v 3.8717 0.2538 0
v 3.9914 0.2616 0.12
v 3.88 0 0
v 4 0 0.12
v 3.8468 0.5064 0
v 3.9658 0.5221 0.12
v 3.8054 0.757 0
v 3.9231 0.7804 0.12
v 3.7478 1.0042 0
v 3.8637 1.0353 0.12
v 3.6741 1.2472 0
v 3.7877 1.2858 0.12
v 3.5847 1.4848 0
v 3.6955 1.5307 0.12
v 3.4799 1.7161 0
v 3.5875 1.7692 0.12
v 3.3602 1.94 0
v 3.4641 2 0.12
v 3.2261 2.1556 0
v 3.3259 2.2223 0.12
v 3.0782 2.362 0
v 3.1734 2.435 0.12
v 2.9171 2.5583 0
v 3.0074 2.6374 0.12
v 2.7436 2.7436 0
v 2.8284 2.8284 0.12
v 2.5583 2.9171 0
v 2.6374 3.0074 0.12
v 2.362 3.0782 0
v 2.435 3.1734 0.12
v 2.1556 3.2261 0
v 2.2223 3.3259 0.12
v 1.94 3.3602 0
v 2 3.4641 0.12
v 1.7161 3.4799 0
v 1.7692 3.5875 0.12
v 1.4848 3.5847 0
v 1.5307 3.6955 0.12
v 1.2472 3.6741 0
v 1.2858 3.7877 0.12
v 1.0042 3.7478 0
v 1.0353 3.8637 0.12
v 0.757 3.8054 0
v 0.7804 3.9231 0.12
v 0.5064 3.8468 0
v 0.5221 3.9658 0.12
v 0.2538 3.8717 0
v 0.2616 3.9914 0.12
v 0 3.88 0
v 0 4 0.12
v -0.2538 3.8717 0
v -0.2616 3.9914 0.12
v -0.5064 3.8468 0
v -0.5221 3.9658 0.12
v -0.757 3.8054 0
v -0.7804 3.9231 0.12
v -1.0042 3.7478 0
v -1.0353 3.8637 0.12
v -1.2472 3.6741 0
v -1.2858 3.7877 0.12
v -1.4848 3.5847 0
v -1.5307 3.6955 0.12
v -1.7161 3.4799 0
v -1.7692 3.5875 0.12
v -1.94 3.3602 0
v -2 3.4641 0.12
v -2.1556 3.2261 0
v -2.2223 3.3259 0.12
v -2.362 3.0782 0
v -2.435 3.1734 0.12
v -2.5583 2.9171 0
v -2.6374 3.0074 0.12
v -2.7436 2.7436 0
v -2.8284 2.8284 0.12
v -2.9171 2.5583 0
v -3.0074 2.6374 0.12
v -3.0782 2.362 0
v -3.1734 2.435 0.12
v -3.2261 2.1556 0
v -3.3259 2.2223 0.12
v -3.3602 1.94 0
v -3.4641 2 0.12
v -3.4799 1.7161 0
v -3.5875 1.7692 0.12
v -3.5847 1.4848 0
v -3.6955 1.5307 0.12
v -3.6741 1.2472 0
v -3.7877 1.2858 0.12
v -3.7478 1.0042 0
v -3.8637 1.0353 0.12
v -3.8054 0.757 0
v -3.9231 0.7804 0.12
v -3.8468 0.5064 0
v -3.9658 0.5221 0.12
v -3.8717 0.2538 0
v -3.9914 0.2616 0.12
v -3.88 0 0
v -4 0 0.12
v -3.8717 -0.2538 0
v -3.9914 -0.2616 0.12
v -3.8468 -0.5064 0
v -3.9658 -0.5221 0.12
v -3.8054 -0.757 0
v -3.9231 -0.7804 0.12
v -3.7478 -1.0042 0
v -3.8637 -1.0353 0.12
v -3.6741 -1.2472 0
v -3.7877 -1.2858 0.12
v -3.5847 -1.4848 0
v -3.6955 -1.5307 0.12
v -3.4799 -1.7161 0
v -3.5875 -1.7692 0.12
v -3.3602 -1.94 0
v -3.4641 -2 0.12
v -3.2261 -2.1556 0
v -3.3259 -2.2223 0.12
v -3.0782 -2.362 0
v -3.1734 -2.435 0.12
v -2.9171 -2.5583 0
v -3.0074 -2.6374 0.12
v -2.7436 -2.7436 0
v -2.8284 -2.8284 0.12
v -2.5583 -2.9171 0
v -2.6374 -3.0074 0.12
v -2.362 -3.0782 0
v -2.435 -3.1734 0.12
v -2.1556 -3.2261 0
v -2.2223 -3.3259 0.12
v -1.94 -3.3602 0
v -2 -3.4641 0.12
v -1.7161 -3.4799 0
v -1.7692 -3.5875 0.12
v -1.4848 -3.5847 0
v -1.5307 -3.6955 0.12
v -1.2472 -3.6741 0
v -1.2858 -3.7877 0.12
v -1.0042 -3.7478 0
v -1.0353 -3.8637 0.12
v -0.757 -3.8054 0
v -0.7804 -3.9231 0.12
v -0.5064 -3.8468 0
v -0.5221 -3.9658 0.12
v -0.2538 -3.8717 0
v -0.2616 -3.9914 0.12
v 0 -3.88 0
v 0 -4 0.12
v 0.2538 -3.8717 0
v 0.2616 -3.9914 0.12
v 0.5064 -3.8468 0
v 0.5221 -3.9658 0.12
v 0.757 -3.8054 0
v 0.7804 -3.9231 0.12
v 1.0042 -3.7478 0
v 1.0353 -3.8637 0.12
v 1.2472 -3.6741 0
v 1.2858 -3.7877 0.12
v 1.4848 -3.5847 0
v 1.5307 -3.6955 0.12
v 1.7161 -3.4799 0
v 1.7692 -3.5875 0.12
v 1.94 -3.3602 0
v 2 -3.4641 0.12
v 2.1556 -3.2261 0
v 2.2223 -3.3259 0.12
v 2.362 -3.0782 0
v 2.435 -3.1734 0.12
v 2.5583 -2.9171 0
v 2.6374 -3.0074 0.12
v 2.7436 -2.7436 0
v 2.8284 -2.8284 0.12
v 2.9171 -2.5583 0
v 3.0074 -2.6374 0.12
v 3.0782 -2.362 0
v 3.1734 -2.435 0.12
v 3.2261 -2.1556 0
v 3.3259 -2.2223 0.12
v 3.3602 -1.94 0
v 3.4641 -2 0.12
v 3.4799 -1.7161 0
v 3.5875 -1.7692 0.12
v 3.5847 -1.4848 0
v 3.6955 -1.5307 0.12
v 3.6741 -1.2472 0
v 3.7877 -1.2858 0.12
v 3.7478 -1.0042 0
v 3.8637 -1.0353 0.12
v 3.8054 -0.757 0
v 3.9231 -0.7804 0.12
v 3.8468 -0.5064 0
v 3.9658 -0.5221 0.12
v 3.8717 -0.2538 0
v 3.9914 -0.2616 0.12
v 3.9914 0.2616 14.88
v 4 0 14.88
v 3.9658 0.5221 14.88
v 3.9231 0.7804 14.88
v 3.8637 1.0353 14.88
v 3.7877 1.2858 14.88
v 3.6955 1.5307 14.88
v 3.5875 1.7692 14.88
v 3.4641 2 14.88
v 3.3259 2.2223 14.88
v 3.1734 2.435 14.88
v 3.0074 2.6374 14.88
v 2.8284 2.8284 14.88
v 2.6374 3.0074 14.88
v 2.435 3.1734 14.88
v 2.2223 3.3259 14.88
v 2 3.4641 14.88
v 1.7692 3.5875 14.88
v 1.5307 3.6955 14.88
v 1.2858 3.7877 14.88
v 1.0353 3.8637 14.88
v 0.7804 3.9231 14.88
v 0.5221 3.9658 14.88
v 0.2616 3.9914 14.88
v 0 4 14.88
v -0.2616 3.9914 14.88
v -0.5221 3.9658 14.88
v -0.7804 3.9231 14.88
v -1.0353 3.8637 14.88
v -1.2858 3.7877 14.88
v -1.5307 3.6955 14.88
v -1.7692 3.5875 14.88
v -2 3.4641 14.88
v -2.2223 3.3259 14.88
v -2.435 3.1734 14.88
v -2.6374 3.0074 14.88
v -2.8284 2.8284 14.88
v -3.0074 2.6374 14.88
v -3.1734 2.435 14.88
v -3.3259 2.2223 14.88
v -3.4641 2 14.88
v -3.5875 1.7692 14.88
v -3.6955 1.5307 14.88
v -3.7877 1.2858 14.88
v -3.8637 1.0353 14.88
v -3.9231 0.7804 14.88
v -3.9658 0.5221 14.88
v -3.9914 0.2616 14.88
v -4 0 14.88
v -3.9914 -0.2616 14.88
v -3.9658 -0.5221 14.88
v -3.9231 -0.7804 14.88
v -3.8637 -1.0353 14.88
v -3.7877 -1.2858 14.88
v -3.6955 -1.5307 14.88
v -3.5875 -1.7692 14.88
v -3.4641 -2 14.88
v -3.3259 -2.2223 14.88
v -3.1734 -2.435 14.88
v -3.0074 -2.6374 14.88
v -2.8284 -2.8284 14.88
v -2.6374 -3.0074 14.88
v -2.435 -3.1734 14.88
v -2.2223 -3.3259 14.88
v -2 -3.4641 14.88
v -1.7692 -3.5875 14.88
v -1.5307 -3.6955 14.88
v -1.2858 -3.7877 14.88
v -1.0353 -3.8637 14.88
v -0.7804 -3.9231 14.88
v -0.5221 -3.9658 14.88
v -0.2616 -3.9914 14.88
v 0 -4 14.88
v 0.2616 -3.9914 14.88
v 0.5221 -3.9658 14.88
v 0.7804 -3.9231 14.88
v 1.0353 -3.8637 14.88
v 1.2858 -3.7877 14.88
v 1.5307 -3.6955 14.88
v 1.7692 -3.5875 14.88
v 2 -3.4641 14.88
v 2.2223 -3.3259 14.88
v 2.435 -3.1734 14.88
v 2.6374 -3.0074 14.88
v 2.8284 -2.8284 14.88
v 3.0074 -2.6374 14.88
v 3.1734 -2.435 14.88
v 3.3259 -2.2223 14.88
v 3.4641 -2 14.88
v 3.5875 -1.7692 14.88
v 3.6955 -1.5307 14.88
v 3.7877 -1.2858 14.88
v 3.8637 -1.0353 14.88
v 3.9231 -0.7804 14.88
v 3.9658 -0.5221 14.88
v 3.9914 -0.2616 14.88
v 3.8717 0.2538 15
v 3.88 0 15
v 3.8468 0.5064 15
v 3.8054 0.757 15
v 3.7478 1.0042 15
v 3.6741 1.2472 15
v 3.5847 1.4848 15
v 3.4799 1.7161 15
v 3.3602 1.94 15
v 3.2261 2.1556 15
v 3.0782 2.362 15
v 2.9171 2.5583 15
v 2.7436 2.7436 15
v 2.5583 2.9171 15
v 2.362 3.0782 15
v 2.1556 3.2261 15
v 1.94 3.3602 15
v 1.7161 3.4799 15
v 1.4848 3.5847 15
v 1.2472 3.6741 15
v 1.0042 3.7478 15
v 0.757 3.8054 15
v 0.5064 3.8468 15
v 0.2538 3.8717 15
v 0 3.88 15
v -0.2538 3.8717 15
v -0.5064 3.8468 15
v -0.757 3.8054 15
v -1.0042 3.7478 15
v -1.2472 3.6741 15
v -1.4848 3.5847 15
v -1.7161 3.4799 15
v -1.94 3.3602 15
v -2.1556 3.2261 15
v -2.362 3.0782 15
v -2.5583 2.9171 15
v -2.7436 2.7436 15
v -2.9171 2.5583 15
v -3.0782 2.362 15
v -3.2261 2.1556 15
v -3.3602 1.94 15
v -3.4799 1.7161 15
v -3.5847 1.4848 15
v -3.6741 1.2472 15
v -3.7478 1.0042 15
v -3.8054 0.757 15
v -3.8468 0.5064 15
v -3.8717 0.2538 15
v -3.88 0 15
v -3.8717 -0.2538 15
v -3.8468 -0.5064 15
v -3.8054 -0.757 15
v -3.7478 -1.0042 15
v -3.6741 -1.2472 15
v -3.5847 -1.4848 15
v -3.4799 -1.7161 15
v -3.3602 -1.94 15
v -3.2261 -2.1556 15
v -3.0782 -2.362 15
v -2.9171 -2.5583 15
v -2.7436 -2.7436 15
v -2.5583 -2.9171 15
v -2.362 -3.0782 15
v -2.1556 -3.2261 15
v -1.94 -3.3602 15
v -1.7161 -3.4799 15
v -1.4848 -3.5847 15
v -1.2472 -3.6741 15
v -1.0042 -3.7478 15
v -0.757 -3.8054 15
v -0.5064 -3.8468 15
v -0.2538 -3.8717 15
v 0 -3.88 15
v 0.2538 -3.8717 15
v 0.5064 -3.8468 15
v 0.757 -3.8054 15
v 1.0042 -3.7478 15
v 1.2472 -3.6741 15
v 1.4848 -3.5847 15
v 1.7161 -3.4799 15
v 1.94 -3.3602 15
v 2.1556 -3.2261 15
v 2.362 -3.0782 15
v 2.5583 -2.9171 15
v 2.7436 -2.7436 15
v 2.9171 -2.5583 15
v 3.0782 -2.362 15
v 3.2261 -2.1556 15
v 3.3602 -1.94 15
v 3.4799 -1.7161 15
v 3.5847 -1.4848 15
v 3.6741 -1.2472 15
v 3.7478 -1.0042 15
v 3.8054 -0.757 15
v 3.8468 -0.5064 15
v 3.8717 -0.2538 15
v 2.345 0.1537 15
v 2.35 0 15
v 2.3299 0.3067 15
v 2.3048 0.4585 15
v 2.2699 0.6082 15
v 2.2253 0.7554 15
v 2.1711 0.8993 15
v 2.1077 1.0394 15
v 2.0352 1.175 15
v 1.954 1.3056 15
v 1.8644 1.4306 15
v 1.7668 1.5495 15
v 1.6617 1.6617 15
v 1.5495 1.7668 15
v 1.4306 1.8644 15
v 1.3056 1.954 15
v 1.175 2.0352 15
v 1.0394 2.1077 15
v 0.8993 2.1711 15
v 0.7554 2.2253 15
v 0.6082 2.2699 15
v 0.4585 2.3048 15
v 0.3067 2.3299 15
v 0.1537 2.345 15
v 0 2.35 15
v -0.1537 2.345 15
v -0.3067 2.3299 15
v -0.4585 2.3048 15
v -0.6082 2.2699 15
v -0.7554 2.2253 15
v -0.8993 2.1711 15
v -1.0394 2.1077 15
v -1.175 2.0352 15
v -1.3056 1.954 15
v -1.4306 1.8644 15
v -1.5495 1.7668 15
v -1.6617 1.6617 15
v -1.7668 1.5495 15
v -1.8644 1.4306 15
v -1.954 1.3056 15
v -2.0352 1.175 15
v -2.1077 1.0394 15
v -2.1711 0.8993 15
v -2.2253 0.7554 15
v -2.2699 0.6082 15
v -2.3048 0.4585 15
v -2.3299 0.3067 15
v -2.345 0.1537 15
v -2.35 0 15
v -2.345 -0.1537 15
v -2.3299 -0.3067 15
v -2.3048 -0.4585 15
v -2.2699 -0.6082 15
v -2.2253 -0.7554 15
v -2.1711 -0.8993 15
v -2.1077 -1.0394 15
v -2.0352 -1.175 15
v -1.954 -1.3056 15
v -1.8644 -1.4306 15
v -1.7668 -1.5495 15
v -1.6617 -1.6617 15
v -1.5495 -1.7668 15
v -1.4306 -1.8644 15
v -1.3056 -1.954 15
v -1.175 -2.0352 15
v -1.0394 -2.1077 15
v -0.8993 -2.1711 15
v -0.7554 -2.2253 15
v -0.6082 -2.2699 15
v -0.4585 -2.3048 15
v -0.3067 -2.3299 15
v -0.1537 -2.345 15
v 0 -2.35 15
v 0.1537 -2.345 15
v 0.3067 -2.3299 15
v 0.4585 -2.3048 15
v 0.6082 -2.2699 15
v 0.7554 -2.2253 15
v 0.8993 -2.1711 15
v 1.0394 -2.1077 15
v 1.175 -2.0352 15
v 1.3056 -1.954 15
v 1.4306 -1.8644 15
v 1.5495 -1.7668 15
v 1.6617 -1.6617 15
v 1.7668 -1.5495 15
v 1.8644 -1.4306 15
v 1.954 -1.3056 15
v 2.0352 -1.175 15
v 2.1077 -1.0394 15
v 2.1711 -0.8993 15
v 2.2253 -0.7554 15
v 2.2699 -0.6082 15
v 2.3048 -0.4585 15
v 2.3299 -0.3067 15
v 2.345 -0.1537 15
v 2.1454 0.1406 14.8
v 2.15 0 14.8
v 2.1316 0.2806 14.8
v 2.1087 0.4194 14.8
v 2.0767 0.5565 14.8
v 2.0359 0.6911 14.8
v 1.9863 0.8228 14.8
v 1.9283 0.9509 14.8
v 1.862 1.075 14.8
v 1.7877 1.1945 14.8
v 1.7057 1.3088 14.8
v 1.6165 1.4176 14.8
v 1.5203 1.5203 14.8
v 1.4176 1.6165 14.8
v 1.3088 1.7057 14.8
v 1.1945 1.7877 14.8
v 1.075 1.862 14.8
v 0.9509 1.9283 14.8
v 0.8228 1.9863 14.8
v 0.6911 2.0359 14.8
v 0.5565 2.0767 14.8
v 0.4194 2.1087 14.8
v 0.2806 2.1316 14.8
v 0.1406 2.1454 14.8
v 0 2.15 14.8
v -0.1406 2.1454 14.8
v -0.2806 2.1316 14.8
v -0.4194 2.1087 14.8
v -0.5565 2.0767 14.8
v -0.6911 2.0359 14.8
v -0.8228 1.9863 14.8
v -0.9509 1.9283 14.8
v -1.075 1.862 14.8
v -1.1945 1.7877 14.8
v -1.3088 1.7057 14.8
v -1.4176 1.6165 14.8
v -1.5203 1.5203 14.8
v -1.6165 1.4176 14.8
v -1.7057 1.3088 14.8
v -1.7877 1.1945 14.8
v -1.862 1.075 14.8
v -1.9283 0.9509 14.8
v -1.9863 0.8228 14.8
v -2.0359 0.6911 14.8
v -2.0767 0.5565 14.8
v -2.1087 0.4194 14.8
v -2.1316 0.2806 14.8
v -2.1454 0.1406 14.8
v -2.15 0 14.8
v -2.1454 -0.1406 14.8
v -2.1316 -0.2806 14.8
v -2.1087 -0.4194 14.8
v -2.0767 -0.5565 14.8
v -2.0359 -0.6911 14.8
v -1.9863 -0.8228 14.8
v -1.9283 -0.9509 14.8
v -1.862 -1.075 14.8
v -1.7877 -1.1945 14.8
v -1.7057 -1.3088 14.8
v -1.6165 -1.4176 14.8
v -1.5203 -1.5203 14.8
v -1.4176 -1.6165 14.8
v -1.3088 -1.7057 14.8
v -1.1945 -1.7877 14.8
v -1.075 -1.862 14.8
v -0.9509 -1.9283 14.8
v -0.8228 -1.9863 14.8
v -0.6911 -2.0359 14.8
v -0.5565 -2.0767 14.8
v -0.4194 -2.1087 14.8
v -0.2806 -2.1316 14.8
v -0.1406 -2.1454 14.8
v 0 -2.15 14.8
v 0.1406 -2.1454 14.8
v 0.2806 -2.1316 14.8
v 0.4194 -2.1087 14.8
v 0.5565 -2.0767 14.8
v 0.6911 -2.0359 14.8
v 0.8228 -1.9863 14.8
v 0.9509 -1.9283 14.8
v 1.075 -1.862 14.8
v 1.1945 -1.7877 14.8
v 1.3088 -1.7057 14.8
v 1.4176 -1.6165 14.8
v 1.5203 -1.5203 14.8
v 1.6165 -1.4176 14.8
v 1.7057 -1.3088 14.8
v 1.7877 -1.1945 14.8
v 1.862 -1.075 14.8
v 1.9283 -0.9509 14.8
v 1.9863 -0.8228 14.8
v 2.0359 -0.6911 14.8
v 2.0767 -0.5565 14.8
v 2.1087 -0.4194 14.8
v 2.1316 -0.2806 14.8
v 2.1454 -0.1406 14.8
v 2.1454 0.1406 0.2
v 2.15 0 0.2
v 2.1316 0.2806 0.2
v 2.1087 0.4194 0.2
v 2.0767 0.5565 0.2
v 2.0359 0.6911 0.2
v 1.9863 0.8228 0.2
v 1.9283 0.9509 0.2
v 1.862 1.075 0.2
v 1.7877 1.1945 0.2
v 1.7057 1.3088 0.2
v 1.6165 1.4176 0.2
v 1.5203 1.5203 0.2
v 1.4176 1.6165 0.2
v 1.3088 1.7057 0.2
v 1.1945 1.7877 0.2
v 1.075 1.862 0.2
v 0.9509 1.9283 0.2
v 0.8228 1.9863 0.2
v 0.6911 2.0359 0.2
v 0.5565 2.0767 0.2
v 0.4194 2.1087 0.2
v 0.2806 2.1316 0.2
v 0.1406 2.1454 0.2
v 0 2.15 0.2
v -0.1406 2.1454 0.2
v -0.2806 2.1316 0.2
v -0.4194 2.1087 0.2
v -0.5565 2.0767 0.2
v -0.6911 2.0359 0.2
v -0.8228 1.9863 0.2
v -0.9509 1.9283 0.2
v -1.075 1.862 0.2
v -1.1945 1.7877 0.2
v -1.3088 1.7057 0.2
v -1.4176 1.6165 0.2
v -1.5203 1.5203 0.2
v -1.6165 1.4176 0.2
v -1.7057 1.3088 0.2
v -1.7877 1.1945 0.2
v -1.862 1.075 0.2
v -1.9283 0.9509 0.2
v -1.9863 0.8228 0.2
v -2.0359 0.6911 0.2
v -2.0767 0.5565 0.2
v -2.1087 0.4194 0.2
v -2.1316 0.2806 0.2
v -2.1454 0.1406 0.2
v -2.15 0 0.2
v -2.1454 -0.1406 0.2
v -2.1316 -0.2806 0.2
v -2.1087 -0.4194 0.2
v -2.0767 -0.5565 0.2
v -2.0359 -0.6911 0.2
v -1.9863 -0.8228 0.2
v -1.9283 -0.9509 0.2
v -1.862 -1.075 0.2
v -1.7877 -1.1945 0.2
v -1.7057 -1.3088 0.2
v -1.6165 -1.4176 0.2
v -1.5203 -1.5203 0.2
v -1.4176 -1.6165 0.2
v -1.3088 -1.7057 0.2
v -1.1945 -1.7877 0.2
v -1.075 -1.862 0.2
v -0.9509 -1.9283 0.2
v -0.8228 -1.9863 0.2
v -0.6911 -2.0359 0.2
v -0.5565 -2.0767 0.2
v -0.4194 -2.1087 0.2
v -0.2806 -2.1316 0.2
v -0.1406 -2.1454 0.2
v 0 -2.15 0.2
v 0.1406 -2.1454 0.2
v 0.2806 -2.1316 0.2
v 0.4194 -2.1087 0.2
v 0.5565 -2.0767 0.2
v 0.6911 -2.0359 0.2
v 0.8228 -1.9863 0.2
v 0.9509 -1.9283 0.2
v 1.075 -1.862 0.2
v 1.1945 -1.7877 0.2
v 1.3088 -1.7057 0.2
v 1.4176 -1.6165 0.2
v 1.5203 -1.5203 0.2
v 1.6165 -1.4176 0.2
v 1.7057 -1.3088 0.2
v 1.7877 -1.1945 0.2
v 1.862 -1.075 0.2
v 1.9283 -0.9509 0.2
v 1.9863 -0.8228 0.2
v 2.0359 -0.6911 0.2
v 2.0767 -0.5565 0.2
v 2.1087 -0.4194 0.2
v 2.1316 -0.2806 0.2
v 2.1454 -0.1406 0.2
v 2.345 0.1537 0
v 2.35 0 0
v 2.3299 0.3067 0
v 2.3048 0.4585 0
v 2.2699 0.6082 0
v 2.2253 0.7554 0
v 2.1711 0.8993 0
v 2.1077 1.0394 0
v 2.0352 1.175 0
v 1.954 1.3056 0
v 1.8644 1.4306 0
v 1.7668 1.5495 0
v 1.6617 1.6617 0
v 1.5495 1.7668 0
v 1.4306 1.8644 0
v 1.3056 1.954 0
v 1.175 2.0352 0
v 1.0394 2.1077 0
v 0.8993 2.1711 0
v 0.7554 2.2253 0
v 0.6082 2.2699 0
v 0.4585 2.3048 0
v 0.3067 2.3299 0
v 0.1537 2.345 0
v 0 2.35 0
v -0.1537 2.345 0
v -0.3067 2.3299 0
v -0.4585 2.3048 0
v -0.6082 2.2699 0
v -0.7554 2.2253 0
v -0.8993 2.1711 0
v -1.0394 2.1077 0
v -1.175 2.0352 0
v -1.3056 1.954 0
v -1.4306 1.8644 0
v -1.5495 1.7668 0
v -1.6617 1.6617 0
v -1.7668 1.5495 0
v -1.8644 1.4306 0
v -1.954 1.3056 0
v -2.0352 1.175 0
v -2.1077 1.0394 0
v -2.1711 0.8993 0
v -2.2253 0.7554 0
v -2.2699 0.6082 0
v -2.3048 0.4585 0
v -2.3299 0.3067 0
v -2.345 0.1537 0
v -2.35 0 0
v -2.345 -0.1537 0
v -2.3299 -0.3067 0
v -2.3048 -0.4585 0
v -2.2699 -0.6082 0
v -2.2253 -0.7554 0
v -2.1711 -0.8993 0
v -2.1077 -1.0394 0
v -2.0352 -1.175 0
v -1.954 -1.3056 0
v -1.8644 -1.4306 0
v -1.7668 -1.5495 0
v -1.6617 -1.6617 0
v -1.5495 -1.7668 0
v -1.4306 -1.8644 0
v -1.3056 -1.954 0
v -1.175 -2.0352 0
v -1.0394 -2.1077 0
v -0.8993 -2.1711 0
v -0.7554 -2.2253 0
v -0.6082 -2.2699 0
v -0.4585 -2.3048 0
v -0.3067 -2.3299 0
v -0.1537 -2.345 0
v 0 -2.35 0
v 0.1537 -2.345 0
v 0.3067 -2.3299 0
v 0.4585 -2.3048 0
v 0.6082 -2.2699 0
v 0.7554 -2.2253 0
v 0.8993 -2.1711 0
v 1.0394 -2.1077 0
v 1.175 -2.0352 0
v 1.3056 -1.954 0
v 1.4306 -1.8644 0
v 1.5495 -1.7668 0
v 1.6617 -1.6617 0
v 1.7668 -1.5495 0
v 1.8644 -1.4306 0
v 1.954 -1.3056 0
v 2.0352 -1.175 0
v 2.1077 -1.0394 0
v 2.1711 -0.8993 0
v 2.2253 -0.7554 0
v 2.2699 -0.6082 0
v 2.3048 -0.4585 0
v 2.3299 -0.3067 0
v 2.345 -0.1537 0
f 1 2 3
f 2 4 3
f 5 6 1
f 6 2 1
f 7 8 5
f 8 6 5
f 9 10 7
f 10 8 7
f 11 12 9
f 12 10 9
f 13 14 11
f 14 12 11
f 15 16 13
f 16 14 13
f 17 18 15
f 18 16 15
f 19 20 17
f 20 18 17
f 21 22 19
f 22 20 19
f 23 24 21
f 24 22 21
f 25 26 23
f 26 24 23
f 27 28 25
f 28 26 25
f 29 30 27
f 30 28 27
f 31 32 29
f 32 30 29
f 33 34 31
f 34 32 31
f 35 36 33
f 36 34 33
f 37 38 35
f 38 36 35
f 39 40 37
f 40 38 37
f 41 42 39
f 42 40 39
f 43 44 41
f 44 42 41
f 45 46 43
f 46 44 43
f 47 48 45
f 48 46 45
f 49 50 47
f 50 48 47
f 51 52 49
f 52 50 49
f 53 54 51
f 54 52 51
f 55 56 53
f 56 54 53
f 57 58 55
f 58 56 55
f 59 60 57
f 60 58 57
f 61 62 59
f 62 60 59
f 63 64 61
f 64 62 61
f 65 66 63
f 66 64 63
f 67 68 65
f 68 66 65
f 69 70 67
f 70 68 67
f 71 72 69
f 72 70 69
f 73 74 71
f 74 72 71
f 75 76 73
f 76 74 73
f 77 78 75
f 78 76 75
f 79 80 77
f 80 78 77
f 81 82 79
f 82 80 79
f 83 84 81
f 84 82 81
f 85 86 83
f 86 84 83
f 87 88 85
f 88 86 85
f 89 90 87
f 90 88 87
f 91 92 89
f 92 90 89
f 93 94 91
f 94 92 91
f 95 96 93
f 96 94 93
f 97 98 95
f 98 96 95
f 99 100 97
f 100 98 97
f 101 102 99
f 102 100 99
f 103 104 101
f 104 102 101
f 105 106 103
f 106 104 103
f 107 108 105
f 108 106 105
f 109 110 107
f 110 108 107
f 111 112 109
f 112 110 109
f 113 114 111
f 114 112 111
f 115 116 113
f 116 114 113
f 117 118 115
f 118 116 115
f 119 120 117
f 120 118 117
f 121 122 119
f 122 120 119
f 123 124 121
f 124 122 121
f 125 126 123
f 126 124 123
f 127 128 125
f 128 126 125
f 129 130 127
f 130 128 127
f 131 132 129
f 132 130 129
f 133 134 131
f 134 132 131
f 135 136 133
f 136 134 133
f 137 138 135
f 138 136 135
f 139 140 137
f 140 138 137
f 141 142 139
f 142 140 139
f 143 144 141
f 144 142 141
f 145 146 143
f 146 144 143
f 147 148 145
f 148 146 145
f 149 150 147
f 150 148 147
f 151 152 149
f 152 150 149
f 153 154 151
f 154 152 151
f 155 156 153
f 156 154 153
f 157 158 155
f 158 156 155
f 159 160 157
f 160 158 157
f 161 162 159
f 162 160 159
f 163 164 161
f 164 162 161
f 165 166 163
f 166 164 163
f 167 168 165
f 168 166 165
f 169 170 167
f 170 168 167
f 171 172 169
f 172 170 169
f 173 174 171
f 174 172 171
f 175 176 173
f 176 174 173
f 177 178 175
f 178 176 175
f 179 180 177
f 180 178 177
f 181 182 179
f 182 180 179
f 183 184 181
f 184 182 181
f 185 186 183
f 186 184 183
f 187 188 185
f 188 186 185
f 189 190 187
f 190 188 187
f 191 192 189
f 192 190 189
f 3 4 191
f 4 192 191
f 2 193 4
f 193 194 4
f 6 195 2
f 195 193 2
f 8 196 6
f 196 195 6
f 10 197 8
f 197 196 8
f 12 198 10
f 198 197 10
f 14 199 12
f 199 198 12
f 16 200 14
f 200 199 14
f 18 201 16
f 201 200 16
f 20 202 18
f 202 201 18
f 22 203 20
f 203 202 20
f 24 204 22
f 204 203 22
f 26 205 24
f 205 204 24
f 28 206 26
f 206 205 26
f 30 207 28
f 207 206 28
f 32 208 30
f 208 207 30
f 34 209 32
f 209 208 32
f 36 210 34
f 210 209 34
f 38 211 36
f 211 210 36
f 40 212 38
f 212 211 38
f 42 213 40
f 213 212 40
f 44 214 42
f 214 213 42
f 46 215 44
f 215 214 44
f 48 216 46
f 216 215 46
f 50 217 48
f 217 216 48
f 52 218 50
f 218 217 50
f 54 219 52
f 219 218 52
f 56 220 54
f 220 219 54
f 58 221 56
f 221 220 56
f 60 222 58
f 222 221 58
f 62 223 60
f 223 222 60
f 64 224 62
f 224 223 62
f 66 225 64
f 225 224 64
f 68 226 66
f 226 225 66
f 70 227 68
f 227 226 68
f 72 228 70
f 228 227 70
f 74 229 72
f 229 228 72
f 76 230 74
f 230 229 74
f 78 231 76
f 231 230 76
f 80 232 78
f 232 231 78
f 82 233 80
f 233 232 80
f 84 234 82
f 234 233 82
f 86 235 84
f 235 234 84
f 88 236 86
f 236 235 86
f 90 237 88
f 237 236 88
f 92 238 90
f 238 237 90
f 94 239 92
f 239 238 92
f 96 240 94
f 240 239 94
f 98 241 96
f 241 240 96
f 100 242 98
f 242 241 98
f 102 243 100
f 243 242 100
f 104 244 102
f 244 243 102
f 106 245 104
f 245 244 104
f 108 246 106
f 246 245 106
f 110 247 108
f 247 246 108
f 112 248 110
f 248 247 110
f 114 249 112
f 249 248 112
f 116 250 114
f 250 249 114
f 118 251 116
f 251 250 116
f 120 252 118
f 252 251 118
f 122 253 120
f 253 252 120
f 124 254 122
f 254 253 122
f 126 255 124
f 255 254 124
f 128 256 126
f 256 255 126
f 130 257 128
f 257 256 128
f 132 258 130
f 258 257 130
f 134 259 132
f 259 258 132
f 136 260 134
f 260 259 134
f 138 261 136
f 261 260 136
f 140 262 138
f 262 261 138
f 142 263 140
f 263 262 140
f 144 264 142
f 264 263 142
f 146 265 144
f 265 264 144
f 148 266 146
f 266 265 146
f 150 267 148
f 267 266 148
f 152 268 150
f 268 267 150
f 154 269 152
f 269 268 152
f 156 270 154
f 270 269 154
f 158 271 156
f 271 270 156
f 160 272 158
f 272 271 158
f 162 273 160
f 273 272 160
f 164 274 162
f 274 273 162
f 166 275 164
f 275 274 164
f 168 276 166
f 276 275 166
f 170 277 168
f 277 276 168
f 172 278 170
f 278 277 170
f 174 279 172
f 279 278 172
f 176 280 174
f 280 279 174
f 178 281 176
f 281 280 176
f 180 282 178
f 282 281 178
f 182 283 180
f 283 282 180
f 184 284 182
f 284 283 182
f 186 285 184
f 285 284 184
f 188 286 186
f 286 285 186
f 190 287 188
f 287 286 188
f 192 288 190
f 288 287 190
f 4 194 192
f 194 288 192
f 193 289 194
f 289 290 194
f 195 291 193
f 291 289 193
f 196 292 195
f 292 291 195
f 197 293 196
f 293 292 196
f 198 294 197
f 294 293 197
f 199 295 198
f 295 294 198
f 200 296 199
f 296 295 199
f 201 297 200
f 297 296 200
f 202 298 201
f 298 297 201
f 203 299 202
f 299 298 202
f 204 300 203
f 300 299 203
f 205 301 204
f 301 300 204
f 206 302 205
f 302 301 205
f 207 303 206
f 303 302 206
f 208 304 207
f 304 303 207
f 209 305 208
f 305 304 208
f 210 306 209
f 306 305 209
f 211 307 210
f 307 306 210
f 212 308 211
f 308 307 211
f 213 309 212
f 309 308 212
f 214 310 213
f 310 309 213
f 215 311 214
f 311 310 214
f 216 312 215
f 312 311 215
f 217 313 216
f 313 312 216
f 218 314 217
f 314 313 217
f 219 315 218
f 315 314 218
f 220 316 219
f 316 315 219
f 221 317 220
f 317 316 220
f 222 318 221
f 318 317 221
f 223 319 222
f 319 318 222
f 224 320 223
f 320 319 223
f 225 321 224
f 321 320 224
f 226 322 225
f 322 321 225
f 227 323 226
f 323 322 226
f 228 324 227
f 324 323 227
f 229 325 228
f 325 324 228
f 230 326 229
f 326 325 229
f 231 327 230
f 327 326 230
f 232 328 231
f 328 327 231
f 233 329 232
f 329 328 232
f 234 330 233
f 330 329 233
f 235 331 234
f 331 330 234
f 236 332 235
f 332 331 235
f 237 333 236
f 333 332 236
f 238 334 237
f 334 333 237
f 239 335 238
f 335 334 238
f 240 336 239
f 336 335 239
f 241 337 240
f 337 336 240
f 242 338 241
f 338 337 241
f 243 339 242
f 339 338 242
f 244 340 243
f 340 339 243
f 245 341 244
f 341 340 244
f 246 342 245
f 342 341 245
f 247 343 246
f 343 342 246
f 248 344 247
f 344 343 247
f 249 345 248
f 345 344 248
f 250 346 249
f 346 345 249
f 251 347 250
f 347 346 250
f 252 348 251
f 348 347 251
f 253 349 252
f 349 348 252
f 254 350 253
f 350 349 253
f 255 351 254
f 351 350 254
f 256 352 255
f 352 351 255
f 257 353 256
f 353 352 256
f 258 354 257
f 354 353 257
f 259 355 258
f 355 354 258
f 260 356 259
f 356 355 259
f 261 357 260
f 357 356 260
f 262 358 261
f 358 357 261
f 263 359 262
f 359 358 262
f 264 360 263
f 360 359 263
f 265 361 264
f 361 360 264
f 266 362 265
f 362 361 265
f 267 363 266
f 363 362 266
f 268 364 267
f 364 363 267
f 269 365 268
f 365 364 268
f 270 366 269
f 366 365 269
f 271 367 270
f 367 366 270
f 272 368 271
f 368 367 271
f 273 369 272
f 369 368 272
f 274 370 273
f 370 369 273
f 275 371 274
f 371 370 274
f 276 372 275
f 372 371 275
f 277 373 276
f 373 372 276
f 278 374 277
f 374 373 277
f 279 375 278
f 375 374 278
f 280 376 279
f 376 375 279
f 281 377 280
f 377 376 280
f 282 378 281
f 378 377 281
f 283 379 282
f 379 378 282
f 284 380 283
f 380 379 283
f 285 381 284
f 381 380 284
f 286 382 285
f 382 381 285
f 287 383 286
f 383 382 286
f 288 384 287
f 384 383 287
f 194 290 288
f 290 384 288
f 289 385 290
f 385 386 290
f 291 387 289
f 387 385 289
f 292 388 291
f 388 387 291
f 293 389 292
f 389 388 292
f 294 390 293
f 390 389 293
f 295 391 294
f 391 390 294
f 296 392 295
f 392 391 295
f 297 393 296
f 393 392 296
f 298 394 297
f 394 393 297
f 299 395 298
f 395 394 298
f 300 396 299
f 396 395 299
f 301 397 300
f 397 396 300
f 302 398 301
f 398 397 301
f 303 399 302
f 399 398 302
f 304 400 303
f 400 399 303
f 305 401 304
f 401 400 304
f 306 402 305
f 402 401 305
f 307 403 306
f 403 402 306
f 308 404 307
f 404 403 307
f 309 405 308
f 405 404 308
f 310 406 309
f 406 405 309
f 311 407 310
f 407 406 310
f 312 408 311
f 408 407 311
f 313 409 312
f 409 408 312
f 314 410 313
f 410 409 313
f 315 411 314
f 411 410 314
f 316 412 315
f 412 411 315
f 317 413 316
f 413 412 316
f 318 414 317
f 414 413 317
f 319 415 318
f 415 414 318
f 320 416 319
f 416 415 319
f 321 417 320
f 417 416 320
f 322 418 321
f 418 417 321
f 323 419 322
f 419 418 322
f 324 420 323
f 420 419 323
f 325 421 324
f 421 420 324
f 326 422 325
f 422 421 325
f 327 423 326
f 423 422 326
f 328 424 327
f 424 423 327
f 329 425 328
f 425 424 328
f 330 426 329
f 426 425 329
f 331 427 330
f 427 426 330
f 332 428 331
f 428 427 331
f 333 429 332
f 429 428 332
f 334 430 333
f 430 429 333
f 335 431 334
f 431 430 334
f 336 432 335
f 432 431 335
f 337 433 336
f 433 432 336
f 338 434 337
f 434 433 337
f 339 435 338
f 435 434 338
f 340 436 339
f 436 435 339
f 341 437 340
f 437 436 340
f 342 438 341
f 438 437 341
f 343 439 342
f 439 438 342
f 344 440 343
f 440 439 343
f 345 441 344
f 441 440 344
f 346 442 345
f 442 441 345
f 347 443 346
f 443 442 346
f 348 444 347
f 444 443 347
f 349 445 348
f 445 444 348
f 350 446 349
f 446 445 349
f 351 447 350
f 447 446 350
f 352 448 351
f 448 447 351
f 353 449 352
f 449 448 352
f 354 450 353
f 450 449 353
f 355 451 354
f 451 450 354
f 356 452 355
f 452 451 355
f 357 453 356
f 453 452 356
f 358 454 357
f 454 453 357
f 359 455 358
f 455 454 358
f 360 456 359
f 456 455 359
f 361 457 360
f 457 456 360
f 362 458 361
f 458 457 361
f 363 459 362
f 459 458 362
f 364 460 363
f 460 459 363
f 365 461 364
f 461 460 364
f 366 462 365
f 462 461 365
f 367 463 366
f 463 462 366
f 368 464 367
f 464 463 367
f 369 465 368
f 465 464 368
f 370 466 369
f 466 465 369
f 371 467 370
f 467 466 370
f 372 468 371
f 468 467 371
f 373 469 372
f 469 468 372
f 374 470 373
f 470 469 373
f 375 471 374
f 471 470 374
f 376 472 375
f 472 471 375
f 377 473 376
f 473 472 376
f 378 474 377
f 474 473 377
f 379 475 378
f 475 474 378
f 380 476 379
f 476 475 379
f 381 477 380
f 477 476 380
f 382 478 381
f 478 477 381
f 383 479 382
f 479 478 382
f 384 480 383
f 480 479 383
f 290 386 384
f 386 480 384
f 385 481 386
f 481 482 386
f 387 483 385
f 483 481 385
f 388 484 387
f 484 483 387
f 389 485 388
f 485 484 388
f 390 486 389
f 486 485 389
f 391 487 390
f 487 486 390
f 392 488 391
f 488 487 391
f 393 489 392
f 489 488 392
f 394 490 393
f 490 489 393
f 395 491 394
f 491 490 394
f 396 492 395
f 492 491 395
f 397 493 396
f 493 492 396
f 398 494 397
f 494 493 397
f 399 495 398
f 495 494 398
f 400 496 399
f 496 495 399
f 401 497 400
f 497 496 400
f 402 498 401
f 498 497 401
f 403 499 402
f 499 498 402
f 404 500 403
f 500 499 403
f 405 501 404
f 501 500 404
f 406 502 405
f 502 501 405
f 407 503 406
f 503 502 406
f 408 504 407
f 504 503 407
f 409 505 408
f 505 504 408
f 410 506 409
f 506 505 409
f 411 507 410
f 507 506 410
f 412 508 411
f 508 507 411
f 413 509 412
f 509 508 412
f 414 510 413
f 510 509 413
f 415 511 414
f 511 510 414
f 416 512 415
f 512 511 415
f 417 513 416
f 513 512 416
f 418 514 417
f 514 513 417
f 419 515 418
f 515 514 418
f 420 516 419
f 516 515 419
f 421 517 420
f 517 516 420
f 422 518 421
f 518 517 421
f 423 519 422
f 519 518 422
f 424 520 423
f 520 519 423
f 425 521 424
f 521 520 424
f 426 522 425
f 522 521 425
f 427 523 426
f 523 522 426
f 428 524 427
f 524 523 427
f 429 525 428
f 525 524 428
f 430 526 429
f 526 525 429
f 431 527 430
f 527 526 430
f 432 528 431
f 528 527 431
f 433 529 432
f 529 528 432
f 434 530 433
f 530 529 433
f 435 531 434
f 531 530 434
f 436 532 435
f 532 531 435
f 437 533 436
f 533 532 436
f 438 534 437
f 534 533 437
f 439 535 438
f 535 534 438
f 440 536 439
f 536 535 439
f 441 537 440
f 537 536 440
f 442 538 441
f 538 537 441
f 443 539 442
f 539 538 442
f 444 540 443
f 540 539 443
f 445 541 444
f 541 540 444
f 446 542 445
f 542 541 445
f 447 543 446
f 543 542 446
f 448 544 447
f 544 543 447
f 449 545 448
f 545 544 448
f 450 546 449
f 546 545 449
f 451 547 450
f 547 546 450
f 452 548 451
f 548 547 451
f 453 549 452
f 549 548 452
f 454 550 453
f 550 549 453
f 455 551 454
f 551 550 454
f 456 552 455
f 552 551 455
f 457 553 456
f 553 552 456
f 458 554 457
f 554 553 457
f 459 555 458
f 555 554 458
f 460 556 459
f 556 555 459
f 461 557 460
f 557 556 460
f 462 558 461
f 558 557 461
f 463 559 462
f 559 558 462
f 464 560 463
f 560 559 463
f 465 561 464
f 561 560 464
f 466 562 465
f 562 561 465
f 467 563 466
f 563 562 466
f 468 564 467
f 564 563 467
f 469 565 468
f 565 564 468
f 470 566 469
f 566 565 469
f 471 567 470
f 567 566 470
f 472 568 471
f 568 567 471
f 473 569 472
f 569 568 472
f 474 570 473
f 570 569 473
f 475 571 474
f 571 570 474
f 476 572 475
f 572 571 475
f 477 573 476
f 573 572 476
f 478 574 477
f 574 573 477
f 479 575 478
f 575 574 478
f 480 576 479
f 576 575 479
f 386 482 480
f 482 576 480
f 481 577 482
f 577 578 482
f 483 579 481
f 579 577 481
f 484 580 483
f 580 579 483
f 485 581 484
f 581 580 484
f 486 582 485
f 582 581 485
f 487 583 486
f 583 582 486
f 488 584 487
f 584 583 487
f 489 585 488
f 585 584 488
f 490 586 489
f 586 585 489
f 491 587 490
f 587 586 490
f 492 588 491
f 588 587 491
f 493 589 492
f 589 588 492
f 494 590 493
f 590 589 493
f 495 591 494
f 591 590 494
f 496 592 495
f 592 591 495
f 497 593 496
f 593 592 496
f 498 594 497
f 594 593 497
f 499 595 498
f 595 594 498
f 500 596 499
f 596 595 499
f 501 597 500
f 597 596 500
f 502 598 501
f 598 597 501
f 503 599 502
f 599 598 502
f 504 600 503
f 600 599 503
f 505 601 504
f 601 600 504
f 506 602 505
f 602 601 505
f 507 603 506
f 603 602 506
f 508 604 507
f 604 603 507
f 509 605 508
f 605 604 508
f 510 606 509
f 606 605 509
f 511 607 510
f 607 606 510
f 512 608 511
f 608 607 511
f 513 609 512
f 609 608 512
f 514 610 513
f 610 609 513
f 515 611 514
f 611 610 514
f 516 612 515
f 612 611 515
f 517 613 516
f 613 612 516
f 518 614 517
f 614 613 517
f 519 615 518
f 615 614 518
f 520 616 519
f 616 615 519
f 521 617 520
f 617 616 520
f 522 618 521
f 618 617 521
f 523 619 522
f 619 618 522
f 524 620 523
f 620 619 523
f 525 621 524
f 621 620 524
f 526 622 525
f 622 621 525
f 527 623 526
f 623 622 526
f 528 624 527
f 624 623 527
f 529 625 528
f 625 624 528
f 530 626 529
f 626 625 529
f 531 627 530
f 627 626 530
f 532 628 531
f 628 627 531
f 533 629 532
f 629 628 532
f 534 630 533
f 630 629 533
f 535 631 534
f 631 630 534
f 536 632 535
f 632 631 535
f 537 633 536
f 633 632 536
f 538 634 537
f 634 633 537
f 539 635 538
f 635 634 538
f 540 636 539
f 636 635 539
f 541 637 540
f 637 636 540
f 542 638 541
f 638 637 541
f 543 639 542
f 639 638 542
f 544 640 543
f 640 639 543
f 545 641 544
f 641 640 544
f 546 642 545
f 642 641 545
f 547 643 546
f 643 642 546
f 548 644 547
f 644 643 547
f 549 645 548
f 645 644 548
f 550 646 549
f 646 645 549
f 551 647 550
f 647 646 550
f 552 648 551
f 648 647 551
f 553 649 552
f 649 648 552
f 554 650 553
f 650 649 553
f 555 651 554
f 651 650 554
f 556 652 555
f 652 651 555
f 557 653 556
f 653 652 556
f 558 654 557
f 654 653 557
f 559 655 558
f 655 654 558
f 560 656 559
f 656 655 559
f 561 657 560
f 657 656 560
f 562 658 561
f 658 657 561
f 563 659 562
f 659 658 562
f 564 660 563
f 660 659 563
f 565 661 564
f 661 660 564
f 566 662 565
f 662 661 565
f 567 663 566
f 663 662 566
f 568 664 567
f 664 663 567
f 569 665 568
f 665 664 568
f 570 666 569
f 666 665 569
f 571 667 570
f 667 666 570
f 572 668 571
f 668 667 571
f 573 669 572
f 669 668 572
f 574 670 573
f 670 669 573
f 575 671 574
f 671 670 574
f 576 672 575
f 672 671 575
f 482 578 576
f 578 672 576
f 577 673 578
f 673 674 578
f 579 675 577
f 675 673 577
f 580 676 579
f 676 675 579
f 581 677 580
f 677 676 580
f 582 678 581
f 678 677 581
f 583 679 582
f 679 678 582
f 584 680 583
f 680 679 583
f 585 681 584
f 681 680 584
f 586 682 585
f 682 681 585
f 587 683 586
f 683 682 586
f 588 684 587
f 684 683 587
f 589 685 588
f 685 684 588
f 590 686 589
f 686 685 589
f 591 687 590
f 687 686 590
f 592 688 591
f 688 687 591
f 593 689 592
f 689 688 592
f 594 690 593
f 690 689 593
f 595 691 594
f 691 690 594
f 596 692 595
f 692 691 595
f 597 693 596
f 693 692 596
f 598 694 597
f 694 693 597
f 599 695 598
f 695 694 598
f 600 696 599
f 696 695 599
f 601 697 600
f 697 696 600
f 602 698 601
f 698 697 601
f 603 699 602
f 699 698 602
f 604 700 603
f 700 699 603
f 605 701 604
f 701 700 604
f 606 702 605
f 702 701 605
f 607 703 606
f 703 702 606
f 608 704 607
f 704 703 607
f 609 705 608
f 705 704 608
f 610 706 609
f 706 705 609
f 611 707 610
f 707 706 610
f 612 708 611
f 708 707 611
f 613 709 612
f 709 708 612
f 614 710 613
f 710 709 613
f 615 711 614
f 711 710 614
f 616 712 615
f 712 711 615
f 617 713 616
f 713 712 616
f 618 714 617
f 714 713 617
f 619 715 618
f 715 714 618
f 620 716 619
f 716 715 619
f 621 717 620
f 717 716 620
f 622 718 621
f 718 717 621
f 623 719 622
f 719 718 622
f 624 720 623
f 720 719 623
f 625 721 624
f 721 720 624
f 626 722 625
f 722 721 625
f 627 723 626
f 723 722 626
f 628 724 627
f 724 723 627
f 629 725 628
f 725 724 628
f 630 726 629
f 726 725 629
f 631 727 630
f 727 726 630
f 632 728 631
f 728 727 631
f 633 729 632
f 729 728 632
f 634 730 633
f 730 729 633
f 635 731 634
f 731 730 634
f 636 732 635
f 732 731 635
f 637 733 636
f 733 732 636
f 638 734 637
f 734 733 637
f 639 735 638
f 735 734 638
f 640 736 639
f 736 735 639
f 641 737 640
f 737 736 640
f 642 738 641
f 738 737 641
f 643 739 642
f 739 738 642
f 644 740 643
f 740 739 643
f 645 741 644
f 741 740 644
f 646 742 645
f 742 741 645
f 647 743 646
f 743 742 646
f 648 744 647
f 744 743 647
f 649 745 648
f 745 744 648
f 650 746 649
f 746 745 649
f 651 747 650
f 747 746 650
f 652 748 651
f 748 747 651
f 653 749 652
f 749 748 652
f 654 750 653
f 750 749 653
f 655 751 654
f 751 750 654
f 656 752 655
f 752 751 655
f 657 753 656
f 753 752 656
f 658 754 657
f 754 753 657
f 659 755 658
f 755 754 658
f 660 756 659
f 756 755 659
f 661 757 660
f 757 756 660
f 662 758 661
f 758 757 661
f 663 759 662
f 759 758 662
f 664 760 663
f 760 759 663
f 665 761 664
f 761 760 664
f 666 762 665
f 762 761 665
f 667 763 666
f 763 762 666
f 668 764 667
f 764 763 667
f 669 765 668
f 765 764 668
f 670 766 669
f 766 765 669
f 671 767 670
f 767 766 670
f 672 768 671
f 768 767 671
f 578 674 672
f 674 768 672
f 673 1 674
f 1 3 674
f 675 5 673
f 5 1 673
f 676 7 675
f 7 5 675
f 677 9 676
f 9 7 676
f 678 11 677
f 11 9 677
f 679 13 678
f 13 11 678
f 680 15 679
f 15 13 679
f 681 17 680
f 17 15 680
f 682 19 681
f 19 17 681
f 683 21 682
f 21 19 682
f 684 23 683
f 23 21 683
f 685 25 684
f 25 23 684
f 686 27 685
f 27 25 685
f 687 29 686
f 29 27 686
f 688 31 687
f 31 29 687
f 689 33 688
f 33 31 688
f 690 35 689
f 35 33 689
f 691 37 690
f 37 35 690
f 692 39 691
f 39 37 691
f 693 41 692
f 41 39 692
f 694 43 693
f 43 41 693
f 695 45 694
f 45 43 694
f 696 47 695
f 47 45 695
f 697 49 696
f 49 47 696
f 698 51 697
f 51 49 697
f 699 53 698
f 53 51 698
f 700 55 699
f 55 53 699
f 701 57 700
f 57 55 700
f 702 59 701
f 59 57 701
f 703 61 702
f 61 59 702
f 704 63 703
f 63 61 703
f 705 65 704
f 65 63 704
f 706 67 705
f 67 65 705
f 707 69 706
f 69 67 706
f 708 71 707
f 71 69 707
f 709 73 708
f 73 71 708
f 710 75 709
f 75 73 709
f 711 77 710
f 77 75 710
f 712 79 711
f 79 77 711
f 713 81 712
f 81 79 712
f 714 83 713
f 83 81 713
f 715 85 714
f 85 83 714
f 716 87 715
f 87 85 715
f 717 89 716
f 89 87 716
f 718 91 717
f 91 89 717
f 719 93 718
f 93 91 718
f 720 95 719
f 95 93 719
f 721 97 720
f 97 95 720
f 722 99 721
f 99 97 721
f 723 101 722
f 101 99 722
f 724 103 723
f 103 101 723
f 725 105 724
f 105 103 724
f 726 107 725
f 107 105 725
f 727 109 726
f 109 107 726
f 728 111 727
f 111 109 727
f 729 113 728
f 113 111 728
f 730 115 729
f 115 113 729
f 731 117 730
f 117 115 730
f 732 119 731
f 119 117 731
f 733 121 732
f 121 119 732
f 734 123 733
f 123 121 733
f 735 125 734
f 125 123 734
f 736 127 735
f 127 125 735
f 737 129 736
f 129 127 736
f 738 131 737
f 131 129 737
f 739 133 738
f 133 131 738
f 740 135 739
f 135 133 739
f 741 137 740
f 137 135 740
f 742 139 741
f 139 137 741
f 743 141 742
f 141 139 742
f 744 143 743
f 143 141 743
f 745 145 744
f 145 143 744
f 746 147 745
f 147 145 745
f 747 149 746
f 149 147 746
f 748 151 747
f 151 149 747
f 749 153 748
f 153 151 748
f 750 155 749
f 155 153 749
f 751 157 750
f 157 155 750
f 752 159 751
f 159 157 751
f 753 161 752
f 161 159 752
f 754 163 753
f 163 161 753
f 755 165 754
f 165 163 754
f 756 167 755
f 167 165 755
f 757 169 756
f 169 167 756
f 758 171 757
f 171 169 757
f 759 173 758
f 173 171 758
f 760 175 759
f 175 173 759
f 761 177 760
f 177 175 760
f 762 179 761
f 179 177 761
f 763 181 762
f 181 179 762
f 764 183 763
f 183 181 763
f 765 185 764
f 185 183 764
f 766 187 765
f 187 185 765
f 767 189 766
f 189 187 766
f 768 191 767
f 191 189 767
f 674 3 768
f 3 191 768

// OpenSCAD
// OOMP generic catalogue model; units: mm.
// Stud length is additional to body depth. Tapping depths are model assumptions.
variant = "full"; // [full, display]
family = "spacer";
connection_type = "plain";
depth_mm = 15;
stud_length_mm = 0;
tapped_depth_mm = 0;
bore_mm = 4.3;
outer_diameter_mm = 8;
across_flats_mm = 6;
thread_nominal_diameter_mm = 3;
thread_pitch_mm = 0.5;
edge_chamfer_mm = 0.12;
mouth_chamfer_mm = 0.2;
angular_segments = 96;
samples_per_pitch = 16;

// Boundary travels up the outside, then down any tapped/plain bore.
// Equal-height rings at shoulders form the annular shoulder faces.
n = angular_segments;
threaded = family == "standoff";
has_stud = connection_type == "stud_to_tapped" || connection_type == "stud_to_stud";
two_studs = connection_type == "stud_to_stud";
through = !threaded || connection_type == "tapped_to_tapped";
pitch = thread_pitch_mm;
diameter = threaded ? thread_nominal_diameter_mm : bore_mm;
minor = diameter - 5*sqrt(3)*pitch/8;
transition = mouth_chamfer_mm + (threaded ? 5*sqrt(3)*pitch/16 : 0);
tip_chamfer = mouth_chamfer_mm + 17*sqrt(3)*pitch/48;
function sorted(v) = len(v)<=1 ? v : let(p=v[0])
    concat(sorted([for(x=v) if(x<p-1e-8) x]), [p], sorted([for(x=v) if(x>p+1e-8) x]));
function reverse(v) = [for(i=[len(v)-1:-1:0]) v[i]];
function theta(i) = i*360/n;
function fract(x) = x-floor(x);
function phase_distance(i,z) = abs(fract(z/pitch-theta(i)/360+0.5)-0.5);
function thread_r(i,z) = minor/2 + min(5*sqrt(3)*pitch/16,
    max(0,(phase_distance(i,z)-0.125)*pitch*sqrt(3)));
function stud_r(i,z,tip) = min(diameter/2 - (variant=="full" ?
    min(17*sqrt(3)*pitch/48,max(0,(phase_distance(i,z)-0.0625)*pitch*sqrt(3))) : 0),
    diameter/2-tip_chamfer+abs(z-tip));
function body_r(i,z) = (threaded ? across_flats_mm/2/cos(theta(i)%60-30) : outer_diameter_mm/2)
    - max(0,edge_chamfer_mm-min(z,depth_mm-z));
function bore_r(i,z) = max(threaded ? (variant=="full" ? thread_r(i,z) : minor/2) : diameter/2,
    diameter/2+mouth_chamfer_mm-(through ? min(z,depth_mm-z) : depth_mm-z));
function stud_z(a,b,tip) = let(count=variant=="full" ? ceil(stud_length_mm/pitch*samples_per_pitch) : 1)
    sorted(concat([for(i=[0:count]) a+(b-a)*i/count], [tip==a ? tip+tip_chamfer : tip-tip_chamfer]));
body_z = sorted([0,edge_chamfer_mm,depth_mm-edge_chamfer_mm,depth_mm]);
low = through ? 0 : depth_mm-tapped_depth_mm;
count = threaded && variant=="full" ? ceil((depth_mm-low)/pitch*samples_per_pitch) : 1;
bore_z = two_studs ? [] : reverse(sorted(concat(
    [for(i=[0:count]) low+(depth_mm-low)*i/count],
    [depth_mm-mouth_chamfer_mm,depth_mm-transition],
    through ? [mouth_chamfer_mm,transition] : [])));
// Ring descriptors: [height, kind, tip]. Kind: 0 body, 1 stud, 2 bore.
rings = concat(
    has_stud ? [for(z=stud_z(-stud_length_mm,0,-stud_length_mm)) [z,1,-stud_length_mm]] : [],
    [for(z=body_z) [z,0,0]],
    two_studs ? [for(z=stud_z(depth_mm,depth_mm+stud_length_mm,depth_mm+stud_length_mm)) [z,1,depth_mm+stud_length_mm]] : [],
    [for(z=bore_z) [z,2,0]]);
function radius(i,ring) = ring[1]==0 ? body_r(i,ring[0]) :
    ring[1]==1 ? stud_r(i,ring[0],ring[2]) : bore_r(i,ring[0]);
points = concat([for(ring=rings) for(i=[0:n-1])
    [radius(i,ring)*cos(theta(i)),radius(i,ring)*sin(theta(i)),ring[0]]],
    through ? [] : [[0,0,rings[0][0]],[0,0,rings[len(rings)-1][0]]]);
center = len(rings)*n;
last = (len(rings)-1)*n;
// OpenSCAD winding is opposite to STL winding.
faces = concat(
    [for(j=[0:len(rings)-(through ? 1 : 2)]) for(i=[0:n-1]) each
        let(a=j*n+i,b=j*n+(i+1)%n,c=((j+1)%len(rings))*n+(i+1)%n,d=((j+1)%len(rings))*n+i)
        [[a,c,b],[a,d,c]]],
    through ? [] : [for(i=[0:n-1]) each let(k=(i+1)%n)
        [[center,i,k],[center+1,last+k,last+i]]]);
assert(family=="spacer" || family=="standoff");
assert(!threaded || connection_type=="tapped_to_tapped" || has_stud);
assert(depth_mm>0 && diameter>0 && pitch>0);
assert(variant=="full" || variant=="display");
assert(n>=24 && n%12==0 && samples_per_pitch>=8);
assert(mouth_chamfer_mm>0 && mouth_chamfer_mm<depth_mm/2);
assert(edge_chamfer_mm>=0 && edge_chamfer_mm<depth_mm/2);
assert(diameter+4*max(mouth_chamfer_mm,edge_chamfer_mm) < (threaded ? across_flats_mm : outer_diameter_mm));
assert(!has_stud || stud_length_mm>2*mouth_chamfer_mm);
assert(!through || !threaded || 2*transition<depth_mm);
assert(connection_type!="stud_to_tapped" || (tapped_depth_mm>transition && tapped_depth_mm<depth_mm));
color([0.86,0.85,0.81]) polyhedron(points=points,faces=faces,convexity=20);
